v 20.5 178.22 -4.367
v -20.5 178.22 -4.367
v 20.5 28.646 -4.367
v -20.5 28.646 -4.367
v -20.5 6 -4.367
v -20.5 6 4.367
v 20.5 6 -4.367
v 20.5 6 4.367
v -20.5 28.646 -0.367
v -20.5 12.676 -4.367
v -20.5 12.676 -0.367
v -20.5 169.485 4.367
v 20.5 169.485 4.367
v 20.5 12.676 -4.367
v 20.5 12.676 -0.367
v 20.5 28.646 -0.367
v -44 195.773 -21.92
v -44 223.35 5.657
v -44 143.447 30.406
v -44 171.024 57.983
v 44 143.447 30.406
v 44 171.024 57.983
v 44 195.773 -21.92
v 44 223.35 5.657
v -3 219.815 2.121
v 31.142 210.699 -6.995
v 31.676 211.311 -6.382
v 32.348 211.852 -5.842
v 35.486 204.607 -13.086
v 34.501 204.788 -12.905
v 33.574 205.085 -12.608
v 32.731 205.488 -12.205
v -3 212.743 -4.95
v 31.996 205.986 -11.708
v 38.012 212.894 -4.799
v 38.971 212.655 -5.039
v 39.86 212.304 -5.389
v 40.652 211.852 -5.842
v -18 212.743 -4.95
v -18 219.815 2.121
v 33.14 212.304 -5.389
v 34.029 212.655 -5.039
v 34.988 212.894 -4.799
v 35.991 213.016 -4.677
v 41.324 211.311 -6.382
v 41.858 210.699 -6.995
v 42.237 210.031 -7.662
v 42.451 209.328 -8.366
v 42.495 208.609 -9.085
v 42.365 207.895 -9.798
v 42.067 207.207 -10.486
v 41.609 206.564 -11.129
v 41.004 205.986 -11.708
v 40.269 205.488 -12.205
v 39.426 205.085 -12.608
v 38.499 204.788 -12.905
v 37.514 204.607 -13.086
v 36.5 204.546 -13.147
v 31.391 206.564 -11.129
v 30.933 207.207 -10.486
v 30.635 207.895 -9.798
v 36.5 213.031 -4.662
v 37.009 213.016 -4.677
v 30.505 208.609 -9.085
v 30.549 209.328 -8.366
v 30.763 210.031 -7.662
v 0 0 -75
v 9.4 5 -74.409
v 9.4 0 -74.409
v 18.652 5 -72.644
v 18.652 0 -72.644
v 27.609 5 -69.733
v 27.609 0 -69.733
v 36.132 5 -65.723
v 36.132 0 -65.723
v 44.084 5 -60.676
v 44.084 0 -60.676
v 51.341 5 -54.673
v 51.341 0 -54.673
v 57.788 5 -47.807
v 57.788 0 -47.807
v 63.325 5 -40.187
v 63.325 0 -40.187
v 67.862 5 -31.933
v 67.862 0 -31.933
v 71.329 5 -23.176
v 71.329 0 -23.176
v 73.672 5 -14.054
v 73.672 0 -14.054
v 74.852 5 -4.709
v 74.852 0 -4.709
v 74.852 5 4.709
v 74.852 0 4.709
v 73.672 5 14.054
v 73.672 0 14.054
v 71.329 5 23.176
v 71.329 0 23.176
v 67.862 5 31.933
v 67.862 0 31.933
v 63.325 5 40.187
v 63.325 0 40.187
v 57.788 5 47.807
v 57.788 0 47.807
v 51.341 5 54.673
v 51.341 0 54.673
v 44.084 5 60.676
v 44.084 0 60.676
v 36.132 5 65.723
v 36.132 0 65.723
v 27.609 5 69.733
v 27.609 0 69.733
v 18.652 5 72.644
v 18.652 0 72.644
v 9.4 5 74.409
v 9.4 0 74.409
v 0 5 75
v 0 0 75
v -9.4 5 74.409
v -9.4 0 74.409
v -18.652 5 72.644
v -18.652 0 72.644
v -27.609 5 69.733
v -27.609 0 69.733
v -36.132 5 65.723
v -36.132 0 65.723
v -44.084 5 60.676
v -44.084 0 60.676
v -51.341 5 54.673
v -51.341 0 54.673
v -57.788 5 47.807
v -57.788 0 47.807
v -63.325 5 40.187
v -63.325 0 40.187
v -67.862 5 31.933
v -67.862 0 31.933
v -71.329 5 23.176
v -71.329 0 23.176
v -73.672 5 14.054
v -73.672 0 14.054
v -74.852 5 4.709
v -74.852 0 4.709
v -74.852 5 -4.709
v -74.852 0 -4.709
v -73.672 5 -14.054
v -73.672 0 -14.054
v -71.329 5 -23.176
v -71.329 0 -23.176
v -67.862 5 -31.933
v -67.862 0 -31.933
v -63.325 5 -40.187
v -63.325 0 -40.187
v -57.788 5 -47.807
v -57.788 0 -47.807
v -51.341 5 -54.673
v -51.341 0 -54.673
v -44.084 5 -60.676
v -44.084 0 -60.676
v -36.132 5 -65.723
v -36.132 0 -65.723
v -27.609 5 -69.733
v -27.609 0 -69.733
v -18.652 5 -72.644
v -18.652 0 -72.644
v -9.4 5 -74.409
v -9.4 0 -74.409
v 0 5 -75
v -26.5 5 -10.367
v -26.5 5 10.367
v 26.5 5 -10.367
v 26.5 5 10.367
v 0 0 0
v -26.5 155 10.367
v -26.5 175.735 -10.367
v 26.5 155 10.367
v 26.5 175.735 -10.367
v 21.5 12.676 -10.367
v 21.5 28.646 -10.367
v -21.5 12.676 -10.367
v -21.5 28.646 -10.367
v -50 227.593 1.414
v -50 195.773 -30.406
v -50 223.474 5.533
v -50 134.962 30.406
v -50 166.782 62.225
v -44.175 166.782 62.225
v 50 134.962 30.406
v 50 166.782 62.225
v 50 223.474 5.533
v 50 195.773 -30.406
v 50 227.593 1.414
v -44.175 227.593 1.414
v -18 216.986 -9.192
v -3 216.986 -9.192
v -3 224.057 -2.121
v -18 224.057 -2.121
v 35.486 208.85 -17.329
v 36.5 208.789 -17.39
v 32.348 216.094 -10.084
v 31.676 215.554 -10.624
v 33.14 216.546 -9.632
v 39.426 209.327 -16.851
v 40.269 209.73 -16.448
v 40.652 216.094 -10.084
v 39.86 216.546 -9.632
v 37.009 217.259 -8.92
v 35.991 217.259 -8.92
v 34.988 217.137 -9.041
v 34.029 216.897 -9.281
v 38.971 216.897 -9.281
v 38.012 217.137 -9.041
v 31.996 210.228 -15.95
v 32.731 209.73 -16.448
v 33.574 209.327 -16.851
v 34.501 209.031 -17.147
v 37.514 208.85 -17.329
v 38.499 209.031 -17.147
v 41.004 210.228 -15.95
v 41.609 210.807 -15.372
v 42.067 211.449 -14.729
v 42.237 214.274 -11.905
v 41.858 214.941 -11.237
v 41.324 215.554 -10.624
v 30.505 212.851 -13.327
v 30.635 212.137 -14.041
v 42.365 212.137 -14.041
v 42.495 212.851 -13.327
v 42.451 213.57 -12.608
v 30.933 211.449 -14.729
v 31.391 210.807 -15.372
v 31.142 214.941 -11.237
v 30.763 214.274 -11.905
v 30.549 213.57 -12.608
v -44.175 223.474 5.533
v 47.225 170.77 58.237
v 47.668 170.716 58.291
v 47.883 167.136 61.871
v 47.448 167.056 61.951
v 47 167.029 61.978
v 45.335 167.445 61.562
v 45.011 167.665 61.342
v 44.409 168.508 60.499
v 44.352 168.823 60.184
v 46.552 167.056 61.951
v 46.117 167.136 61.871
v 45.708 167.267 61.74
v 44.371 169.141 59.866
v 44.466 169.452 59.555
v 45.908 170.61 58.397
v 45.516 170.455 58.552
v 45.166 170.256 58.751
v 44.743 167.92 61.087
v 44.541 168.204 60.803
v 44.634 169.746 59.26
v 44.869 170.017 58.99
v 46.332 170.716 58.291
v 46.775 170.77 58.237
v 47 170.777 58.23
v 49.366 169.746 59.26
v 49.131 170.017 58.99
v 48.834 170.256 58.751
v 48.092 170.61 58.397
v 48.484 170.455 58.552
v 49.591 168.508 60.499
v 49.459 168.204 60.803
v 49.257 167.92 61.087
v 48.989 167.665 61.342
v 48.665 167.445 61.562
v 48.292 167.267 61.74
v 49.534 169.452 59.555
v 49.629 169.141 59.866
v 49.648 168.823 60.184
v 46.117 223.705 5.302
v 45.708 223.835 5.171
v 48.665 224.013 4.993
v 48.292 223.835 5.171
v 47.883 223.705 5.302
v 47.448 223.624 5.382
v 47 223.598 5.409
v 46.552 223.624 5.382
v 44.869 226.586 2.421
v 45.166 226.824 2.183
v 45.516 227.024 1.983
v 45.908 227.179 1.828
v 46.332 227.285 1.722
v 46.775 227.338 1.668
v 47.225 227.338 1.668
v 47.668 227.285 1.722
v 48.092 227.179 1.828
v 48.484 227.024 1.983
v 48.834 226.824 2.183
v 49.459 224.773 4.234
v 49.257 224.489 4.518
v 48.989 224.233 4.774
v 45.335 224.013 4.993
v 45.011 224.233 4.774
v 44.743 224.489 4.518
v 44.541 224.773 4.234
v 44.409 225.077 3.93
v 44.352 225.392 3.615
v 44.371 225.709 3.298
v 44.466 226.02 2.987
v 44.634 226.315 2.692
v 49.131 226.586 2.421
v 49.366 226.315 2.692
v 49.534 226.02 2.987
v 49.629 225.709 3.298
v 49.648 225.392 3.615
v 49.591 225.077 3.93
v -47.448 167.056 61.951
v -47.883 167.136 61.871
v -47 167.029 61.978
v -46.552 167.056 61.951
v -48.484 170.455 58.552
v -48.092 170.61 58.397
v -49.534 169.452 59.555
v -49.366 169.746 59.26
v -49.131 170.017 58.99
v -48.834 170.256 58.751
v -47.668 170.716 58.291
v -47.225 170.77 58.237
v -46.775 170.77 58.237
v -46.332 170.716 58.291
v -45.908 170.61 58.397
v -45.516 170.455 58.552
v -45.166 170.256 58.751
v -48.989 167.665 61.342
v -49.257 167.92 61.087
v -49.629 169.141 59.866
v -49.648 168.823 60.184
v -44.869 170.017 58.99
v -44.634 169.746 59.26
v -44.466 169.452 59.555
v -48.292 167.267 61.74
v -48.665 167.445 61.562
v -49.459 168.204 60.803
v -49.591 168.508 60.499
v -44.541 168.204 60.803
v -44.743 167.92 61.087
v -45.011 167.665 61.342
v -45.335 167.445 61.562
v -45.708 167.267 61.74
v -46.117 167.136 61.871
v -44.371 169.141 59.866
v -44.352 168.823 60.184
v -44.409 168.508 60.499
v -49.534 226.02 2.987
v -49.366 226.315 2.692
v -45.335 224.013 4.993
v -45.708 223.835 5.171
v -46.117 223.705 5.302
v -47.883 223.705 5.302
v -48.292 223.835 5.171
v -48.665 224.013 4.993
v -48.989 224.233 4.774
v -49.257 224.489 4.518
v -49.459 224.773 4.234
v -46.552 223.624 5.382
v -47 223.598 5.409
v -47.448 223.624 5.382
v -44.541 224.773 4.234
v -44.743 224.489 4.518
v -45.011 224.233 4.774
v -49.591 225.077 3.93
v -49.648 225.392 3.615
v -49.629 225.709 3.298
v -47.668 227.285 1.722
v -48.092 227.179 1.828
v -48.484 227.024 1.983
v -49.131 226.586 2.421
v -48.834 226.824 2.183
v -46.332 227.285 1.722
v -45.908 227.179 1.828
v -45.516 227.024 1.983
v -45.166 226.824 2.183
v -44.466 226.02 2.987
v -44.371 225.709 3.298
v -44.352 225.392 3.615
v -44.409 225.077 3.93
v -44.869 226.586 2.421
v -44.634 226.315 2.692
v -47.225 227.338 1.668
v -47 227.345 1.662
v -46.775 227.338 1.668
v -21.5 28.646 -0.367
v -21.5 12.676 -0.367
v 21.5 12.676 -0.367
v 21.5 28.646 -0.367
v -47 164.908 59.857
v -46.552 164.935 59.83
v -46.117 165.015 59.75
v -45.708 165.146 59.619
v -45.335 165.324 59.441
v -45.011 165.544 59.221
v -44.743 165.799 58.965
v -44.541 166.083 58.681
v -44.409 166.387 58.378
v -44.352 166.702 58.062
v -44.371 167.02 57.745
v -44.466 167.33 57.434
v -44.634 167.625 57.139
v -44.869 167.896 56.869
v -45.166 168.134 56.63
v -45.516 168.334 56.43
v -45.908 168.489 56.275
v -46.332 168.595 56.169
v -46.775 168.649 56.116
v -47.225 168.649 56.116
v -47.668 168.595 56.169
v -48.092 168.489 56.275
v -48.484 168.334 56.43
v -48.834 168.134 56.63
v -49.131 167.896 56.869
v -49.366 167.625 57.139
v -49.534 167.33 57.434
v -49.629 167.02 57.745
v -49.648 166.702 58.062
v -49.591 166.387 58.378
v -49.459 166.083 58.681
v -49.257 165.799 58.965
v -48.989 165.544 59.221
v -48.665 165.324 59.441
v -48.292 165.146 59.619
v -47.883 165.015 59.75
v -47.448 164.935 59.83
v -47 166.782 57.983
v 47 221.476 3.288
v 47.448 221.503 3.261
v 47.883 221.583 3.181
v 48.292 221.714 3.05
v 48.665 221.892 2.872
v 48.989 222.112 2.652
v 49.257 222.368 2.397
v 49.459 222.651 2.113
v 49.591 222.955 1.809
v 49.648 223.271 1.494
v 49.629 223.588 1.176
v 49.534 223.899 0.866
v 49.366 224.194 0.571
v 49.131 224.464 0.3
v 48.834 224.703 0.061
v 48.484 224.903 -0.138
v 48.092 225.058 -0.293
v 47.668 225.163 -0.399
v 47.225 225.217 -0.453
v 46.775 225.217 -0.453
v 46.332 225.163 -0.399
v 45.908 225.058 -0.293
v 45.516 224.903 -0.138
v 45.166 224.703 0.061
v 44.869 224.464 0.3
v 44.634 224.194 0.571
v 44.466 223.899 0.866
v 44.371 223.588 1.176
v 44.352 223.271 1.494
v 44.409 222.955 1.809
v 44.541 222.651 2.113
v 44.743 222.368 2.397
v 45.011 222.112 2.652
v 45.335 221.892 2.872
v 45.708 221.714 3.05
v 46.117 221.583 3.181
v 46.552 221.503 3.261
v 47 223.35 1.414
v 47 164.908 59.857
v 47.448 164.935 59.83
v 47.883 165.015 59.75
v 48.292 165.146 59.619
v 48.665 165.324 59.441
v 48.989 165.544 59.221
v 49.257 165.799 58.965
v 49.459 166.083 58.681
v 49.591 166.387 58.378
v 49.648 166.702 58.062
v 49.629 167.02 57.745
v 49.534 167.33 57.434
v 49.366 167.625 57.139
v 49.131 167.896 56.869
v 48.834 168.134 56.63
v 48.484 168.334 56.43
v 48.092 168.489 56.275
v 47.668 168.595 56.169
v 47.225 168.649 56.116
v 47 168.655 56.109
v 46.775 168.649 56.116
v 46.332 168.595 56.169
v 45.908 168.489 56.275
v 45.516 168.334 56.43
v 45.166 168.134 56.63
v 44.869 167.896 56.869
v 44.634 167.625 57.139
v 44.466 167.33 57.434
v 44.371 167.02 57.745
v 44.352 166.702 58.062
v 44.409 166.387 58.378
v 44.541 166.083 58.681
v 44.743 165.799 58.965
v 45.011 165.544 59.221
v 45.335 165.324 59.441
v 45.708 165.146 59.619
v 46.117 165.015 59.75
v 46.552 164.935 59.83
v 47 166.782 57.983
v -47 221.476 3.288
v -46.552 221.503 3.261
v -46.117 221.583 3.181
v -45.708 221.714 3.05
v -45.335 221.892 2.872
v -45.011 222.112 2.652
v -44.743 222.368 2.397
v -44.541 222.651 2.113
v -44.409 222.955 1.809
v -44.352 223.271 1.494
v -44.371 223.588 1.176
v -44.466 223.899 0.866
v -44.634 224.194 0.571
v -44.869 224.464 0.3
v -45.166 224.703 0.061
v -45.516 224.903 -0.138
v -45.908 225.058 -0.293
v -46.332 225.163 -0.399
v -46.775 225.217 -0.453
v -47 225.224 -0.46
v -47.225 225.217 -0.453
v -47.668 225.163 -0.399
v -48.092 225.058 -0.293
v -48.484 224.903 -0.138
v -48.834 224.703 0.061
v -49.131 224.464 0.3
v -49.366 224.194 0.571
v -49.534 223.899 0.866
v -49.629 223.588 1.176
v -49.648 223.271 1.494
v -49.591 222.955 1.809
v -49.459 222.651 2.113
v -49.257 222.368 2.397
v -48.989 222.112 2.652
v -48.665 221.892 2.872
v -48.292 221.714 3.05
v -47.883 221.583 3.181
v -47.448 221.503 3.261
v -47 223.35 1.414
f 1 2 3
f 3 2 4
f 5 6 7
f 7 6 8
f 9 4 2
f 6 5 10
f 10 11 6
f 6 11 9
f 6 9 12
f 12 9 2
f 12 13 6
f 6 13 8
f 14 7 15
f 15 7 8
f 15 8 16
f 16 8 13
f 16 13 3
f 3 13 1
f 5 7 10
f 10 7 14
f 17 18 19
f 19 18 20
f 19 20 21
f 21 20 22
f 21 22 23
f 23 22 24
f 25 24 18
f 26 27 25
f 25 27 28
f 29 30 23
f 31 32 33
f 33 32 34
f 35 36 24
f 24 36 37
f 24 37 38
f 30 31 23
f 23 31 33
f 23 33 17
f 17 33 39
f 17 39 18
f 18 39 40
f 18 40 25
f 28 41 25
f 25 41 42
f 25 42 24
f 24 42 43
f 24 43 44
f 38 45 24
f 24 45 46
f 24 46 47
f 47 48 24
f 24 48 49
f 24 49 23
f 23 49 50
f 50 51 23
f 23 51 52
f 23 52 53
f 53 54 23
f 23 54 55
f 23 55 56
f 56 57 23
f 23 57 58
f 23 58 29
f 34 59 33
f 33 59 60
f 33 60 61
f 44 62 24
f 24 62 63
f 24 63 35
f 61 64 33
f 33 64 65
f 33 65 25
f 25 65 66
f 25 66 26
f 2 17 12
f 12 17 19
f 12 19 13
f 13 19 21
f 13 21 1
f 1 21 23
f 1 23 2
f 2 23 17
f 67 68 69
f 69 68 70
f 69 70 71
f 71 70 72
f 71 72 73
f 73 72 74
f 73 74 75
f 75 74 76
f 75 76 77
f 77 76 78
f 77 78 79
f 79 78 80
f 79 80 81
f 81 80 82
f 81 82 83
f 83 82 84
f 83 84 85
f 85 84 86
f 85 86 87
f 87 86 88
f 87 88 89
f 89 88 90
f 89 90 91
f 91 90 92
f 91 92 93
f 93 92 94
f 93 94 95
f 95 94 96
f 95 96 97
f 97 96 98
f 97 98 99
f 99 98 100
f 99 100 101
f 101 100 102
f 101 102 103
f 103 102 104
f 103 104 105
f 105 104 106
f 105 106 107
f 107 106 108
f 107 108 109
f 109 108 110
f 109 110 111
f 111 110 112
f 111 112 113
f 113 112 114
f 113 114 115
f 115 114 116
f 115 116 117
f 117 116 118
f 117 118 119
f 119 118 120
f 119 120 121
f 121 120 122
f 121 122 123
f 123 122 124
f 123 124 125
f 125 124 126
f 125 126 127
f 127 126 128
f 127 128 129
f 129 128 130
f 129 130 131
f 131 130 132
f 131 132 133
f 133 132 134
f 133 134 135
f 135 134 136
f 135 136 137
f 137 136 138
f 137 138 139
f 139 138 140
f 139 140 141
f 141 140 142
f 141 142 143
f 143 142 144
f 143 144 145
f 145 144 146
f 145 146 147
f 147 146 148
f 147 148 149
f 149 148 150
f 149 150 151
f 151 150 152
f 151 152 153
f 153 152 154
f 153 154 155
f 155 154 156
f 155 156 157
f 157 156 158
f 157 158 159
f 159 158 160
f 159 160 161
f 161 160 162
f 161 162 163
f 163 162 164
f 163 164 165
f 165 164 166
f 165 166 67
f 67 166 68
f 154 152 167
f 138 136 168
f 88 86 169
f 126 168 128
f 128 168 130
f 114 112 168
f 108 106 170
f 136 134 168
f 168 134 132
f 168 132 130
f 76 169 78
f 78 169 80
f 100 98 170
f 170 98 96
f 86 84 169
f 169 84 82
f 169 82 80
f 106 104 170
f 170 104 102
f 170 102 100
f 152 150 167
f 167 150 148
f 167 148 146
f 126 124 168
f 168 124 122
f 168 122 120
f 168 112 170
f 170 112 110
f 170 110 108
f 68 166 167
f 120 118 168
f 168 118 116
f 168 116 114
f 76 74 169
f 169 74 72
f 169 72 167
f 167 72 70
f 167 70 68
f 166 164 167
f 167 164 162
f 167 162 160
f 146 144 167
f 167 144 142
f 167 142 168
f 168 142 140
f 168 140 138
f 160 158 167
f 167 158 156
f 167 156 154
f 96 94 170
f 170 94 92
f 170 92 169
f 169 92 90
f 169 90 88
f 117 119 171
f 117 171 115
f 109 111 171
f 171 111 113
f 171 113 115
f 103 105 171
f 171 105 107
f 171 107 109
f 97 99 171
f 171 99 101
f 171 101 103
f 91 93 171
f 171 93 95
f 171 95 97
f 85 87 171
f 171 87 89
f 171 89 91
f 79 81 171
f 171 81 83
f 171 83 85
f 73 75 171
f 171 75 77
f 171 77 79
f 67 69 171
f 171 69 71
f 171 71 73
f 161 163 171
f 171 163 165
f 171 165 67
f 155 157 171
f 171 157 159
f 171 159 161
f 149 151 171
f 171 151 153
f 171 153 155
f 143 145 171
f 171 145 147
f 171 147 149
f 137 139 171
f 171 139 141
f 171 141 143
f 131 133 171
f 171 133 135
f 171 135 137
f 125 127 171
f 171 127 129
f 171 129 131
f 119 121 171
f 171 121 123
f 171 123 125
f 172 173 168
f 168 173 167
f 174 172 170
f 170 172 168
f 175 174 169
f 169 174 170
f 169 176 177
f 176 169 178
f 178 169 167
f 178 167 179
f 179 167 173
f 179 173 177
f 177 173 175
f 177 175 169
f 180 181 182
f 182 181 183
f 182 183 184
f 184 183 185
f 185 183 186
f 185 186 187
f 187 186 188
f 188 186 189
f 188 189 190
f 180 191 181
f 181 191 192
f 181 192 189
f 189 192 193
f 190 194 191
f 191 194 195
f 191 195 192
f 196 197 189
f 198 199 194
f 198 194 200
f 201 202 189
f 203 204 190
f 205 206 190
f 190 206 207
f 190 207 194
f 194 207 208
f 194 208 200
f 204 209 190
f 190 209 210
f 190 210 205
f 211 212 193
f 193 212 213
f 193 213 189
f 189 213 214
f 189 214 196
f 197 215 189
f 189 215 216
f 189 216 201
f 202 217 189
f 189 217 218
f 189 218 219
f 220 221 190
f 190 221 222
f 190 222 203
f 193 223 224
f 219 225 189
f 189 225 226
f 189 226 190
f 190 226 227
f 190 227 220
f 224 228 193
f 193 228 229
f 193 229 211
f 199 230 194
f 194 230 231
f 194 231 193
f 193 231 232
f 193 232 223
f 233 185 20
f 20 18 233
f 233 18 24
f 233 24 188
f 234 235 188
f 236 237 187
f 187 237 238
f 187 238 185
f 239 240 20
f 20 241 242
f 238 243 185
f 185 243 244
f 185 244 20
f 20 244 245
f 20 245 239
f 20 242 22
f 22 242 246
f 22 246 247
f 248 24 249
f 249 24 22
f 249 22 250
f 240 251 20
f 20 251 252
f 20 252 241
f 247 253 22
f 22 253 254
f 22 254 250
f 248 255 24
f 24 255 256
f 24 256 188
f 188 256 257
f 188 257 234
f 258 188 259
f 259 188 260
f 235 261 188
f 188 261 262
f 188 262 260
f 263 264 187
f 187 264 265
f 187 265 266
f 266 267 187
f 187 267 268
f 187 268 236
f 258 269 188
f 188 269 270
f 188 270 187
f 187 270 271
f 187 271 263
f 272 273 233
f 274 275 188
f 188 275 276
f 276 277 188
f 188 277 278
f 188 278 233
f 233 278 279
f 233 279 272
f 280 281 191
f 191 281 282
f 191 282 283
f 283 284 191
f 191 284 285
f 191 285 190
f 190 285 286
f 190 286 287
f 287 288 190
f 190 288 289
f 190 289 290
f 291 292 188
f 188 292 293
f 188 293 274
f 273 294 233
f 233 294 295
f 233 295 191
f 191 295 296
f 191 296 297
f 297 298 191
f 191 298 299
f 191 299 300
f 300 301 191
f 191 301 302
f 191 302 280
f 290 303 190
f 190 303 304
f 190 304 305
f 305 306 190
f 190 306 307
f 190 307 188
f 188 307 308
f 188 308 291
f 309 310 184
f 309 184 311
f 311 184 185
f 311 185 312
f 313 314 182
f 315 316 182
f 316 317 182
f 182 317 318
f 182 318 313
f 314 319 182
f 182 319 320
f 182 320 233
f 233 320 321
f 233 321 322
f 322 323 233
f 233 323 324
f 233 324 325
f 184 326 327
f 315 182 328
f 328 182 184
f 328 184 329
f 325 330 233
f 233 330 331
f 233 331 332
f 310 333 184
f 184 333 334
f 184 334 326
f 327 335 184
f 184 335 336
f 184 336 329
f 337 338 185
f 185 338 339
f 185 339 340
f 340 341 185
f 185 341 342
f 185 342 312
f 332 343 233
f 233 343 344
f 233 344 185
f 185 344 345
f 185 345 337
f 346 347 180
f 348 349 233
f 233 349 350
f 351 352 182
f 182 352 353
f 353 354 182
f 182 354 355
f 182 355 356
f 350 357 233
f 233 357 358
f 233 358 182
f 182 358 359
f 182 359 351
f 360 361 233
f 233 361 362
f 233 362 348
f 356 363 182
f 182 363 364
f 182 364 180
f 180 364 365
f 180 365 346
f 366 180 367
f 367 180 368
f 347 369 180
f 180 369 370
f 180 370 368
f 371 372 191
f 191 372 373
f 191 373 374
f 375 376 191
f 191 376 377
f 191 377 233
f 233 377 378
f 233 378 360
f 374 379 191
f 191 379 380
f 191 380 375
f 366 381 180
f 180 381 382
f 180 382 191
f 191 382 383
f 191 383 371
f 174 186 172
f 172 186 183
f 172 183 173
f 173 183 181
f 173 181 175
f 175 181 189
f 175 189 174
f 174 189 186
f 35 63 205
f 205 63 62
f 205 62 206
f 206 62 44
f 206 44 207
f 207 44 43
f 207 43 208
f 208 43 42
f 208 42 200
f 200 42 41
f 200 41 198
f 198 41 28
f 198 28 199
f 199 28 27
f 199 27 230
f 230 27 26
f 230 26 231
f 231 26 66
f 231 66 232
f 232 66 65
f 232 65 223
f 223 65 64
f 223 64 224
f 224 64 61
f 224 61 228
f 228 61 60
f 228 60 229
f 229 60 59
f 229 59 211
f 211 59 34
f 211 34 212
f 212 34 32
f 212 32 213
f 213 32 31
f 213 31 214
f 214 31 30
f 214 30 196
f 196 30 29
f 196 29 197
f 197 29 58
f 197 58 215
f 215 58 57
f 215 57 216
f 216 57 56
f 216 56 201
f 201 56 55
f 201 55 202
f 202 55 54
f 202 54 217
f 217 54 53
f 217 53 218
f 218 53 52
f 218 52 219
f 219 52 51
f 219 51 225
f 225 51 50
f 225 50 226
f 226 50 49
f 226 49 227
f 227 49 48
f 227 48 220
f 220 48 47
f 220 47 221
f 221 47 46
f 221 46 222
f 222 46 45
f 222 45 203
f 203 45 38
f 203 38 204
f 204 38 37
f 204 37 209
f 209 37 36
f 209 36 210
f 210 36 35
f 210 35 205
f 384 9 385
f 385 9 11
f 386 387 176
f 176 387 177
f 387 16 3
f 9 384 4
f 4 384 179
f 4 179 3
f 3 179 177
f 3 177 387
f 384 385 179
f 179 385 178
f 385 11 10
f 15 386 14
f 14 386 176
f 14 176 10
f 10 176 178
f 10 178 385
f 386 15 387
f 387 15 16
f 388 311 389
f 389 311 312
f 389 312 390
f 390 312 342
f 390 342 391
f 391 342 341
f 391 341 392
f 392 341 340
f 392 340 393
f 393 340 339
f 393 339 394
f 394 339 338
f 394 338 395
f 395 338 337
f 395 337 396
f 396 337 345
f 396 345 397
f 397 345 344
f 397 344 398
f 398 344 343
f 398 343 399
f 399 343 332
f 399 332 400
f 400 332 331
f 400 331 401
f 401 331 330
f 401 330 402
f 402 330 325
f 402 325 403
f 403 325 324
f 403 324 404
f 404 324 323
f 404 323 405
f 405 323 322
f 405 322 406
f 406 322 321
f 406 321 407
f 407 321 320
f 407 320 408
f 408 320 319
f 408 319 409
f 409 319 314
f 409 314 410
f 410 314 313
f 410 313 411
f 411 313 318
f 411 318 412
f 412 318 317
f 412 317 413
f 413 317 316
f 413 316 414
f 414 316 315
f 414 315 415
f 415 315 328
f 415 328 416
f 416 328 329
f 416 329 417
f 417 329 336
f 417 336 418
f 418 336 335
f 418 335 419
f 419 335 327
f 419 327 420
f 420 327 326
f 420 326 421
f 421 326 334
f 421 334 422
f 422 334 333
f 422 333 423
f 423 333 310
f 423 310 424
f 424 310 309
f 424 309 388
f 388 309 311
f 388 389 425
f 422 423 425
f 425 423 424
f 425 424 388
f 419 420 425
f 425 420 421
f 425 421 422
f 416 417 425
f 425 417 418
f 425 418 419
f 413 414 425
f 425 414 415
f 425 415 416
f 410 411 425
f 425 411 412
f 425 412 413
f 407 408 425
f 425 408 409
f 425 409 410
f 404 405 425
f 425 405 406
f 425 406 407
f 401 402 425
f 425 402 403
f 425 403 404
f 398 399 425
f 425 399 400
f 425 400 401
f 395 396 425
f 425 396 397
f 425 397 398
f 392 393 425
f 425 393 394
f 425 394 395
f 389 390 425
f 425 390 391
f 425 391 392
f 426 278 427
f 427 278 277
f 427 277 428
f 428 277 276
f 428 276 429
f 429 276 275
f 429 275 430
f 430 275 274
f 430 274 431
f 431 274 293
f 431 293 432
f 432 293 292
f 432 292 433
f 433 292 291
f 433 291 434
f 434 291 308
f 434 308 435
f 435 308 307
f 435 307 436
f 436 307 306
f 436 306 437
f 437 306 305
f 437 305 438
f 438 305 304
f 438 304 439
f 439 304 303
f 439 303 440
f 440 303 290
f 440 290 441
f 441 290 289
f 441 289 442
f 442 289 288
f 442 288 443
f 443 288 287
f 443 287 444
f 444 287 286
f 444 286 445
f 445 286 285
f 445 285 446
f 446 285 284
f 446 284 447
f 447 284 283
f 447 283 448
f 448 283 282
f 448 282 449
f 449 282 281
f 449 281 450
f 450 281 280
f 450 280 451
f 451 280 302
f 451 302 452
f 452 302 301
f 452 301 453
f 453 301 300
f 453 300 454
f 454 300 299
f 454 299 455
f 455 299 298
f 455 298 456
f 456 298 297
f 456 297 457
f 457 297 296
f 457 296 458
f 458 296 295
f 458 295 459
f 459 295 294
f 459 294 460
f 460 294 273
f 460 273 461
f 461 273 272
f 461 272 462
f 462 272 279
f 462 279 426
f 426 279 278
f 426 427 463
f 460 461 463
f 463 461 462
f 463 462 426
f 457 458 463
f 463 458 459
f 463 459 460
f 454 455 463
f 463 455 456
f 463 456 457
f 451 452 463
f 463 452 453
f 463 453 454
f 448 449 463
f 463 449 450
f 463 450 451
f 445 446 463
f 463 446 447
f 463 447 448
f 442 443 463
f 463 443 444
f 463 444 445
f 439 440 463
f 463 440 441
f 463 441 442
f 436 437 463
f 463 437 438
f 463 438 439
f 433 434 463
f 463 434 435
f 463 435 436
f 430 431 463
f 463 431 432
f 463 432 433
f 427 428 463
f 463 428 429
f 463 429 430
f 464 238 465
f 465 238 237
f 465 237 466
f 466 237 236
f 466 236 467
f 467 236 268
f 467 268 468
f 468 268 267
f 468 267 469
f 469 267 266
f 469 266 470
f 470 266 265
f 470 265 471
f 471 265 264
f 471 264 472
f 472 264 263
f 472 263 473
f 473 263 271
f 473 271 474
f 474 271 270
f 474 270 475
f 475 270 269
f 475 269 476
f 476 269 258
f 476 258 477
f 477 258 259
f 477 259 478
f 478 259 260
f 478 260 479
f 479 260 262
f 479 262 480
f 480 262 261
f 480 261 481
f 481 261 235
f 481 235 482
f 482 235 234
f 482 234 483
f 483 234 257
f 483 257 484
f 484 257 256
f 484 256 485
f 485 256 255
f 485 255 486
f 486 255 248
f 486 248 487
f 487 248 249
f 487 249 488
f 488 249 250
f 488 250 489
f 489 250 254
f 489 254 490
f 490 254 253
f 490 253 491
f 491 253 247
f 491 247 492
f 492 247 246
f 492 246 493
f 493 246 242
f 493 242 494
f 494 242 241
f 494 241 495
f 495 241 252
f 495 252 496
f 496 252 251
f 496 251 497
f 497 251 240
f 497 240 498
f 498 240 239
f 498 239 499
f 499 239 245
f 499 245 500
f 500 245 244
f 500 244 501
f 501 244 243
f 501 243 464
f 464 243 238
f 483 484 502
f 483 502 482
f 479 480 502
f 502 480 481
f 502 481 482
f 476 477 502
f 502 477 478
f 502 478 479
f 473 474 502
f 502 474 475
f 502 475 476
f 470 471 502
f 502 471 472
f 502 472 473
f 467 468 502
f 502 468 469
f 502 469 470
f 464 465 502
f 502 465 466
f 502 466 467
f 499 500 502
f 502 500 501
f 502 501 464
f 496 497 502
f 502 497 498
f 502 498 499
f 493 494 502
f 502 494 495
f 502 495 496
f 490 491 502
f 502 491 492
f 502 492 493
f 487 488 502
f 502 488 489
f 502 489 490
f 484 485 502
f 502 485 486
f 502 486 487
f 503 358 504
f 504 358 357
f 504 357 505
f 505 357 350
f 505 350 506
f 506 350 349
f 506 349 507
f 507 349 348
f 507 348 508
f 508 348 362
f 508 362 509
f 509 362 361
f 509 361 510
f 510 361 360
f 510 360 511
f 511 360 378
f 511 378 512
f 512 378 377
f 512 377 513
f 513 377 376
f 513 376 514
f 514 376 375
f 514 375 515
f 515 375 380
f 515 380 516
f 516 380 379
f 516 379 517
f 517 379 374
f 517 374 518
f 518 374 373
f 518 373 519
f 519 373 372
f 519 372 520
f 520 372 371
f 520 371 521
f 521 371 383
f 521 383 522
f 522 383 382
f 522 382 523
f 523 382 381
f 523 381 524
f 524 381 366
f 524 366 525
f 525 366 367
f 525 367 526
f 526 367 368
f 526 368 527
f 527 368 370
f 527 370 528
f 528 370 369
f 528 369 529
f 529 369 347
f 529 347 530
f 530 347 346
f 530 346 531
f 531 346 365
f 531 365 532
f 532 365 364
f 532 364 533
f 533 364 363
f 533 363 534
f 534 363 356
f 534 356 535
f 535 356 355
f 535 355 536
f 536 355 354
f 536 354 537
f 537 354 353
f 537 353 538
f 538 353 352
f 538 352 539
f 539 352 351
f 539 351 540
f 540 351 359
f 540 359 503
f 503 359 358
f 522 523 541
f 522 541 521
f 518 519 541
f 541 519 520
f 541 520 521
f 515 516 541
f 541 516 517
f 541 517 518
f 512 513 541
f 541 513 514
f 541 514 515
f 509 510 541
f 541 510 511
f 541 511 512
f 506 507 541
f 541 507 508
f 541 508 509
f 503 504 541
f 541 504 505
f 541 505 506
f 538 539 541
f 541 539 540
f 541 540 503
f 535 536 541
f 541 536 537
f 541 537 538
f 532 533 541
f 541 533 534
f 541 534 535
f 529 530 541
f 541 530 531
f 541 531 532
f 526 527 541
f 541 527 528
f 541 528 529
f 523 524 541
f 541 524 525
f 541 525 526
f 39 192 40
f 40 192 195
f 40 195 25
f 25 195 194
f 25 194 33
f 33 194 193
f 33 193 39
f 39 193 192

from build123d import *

# Parameters (mm, degrees)
SKETCH1_R           = 75
BOSS_EXTRUDE1_DEPTH = 5
SKETCH2_W           = 53
SKETCH2_H           = 20.734598854
BOSS_EXTRUDE2_DEPTH = 150
BOSS_EXTRUDE3_DEPTH = 53
SKETCH4_W           = 100
SKETCH4_H           = 86
BOSS_EXTRUDE4_DEPTH = 45
SHELL1_START        = -44
SHELL1_DEPTH        = 88
SHELL1_START_2      = -20.5
SHELL1_2_DEPTH      = 41
SKETCH5_W           = 88
SKETCH5_H           = 74
CUT_EXTRUDE1_DEPTH  = 10
SKETCH7_R           = 6
CUT_EXTRUDE2_DEPTH  = 10
SKETCH8_W           = 43
SKETCH8_H           = 15.969997916
CUT_EXTRUDE3_DEPTH  = 10
SKETCH10_R          = 2.65
CUT_EXTRUDE4_DEPTH  = 3
SKETCH12_W          = 15
SKETCH12_H          = 10
CUT_EXTRUDE5_DEPTH  = 10


# Read off the part's stored shape, not the designer's step: Shell1
with BuildPart() as part:
    # Sketch1 → Boss-Extrude1 (new body)
    with BuildSketch(Plane(origin=(0, 0, 0), x_dir=(1, 0, 0), z_dir=(0, 1, 0))):
        with Locations(Location((0, 0, 0), (0, 0, 270))):
            Circle(SKETCH1_R)
    extrude(amount=BOSS_EXTRUDE1_DEPTH)

    # Sketch2 → Boss-Extrude2 (add)
    with BuildSketch(Plane(origin=(0, 5, 0), x_dir=(1, 0, 0), z_dir=(0, 1, 0))):
        Rectangle(SKETCH2_W, SKETCH2_H)
    extrude(amount=BOSS_EXTRUDE2_DEPTH)

    # Sketch3 → Boss-Extrude3 (add)
    with BuildSketch(Plane.ZY.offset(26.5)):
        Polygon((-10.367299427, 155), (-10.367299427, 175.734598855), (10.367299427, 155), align=None)
    extrude(amount=-BOSS_EXTRUDE3_DEPTH)

    # Sketch4 → Boss-Extrude4 (add)
    with BuildSketch(Plane(origin=(0, 82.683649714, 82.683649714), x_dir=(1, 0, 0), z_dir=(0, 0.7071067811865513, 0.7071067811865438))):
        with Locations((0, 116.932338812)):
            Rectangle(SKETCH4_W, SKETCH4_H)
    extrude(amount=BOSS_EXTRUDE4_DEPTH)

    # Shell1 outline → Shell1 (cut)
    with BuildSketch(Plane.YZ.offset(SHELL1_START)):
        Polygon((143.446989211, 30.405591591), (195.772891018, -21.920310217), (219.107414798, 1.414213562), (166.78151299, 53.74011537), align=None)
    extrude(amount=SHELL1_DEPTH, mode=Mode.SUBTRACT)

    # Shell1 2 outline → Shell1 2 (cut)
    with BuildSketch(Plane.YZ.offset(SHELL1_START_2)):
        Polygon((6, 4.367299427), (6, -4.367299427), (178.219880229, -4.367299427), (169.485281374, 4.367299427), align=None)
    extrude(amount=SHELL1_2_DEPTH, mode=Mode.SUBTRACT)

    # Sketch5 → Cut-Extrude1 (cut)
    with BuildSketch(Plane(origin=(0, 114.503454867, 114.503454867), x_dir=(1, 0, 0), z_dir=(0, 0.7071067811865512, 0.7071067811865438))):
        with Locations((0, 116.932338812)):
            Rectangle(SKETCH5_W, SKETCH5_H)
    extrude(amount=-CUT_EXTRUDE1_DEPTH, mode=Mode.SUBTRACT)

    # Sketch7 → Cut-Extrude2 (cut)
    with BuildSketch(Plane(origin=(0, 108.846600618, -108.846600618), x_dir=(1, 0, 0), z_dir=(0, -0.7071067811865438, 0.7071067811865512))):
        with Locations(Location((36.5, 141.33938714, 0), (0, 0, 270))):
            Circle(SKETCH7_R)
    extrude(amount=-CUT_EXTRUDE2_DEPTH, mode=Mode.SUBTRACT)

    # Sketch8 → Cut-Extrude3 (cut)
    with BuildSketch(Plane(origin=(0, 0, -10.367299427), x_dir=(-1, 0, 0), z_dir=(0, 0, -1))):
        with Locations((0, 20.660666548)):
            Rectangle(SKETCH8_W, SKETCH8_H)
    extrude(amount=-CUT_EXTRUDE3_DEPTH, mode=Mode.SUBTRACT)

    # Sketch10 → Cut-Extrude4 (cut)
    with BuildSketch(Plane(origin=(0, 114.503454867, 114.503454867), x_dir=(1, 0, 0), z_dir=(0, 0.7071067811865512, 0.7071067811865438))):
        with Locations(Location((-47, 76.932338812, 0), (0, 0, 270))):
            Circle(SKETCH10_R)
        with Locations(Location((-47, 156.932338812, 0), (0, 0, 270))):
            Circle(SKETCH10_R)
        with Locations(Location((47, 76.932338812, 0), (0, 0, 270))):
            Circle(SKETCH10_R)
        with Locations(Location((47, 156.932338812, 0), (0, 0, 270))):
            Circle(SKETCH10_R)
    extrude(amount=-CUT_EXTRUDE4_DEPTH, mode=Mode.SUBTRACT)

    # Sketch12 → Cut-Extrude5 (cut)
    with BuildSketch(Plane(origin=(0, 108.846600618, -108.846600618), x_dir=(1, 0, 0), z_dir=(0, -0.7071067811865438, 0.7071067811865512))):
        with Locations((-10.5, 151.932338812)):
            Rectangle(SKETCH12_W, SKETCH12_H)
    extrude(amount=-CUT_EXTRUDE5_DEPTH, mode=Mode.SUBTRACT)


solid = part.part
